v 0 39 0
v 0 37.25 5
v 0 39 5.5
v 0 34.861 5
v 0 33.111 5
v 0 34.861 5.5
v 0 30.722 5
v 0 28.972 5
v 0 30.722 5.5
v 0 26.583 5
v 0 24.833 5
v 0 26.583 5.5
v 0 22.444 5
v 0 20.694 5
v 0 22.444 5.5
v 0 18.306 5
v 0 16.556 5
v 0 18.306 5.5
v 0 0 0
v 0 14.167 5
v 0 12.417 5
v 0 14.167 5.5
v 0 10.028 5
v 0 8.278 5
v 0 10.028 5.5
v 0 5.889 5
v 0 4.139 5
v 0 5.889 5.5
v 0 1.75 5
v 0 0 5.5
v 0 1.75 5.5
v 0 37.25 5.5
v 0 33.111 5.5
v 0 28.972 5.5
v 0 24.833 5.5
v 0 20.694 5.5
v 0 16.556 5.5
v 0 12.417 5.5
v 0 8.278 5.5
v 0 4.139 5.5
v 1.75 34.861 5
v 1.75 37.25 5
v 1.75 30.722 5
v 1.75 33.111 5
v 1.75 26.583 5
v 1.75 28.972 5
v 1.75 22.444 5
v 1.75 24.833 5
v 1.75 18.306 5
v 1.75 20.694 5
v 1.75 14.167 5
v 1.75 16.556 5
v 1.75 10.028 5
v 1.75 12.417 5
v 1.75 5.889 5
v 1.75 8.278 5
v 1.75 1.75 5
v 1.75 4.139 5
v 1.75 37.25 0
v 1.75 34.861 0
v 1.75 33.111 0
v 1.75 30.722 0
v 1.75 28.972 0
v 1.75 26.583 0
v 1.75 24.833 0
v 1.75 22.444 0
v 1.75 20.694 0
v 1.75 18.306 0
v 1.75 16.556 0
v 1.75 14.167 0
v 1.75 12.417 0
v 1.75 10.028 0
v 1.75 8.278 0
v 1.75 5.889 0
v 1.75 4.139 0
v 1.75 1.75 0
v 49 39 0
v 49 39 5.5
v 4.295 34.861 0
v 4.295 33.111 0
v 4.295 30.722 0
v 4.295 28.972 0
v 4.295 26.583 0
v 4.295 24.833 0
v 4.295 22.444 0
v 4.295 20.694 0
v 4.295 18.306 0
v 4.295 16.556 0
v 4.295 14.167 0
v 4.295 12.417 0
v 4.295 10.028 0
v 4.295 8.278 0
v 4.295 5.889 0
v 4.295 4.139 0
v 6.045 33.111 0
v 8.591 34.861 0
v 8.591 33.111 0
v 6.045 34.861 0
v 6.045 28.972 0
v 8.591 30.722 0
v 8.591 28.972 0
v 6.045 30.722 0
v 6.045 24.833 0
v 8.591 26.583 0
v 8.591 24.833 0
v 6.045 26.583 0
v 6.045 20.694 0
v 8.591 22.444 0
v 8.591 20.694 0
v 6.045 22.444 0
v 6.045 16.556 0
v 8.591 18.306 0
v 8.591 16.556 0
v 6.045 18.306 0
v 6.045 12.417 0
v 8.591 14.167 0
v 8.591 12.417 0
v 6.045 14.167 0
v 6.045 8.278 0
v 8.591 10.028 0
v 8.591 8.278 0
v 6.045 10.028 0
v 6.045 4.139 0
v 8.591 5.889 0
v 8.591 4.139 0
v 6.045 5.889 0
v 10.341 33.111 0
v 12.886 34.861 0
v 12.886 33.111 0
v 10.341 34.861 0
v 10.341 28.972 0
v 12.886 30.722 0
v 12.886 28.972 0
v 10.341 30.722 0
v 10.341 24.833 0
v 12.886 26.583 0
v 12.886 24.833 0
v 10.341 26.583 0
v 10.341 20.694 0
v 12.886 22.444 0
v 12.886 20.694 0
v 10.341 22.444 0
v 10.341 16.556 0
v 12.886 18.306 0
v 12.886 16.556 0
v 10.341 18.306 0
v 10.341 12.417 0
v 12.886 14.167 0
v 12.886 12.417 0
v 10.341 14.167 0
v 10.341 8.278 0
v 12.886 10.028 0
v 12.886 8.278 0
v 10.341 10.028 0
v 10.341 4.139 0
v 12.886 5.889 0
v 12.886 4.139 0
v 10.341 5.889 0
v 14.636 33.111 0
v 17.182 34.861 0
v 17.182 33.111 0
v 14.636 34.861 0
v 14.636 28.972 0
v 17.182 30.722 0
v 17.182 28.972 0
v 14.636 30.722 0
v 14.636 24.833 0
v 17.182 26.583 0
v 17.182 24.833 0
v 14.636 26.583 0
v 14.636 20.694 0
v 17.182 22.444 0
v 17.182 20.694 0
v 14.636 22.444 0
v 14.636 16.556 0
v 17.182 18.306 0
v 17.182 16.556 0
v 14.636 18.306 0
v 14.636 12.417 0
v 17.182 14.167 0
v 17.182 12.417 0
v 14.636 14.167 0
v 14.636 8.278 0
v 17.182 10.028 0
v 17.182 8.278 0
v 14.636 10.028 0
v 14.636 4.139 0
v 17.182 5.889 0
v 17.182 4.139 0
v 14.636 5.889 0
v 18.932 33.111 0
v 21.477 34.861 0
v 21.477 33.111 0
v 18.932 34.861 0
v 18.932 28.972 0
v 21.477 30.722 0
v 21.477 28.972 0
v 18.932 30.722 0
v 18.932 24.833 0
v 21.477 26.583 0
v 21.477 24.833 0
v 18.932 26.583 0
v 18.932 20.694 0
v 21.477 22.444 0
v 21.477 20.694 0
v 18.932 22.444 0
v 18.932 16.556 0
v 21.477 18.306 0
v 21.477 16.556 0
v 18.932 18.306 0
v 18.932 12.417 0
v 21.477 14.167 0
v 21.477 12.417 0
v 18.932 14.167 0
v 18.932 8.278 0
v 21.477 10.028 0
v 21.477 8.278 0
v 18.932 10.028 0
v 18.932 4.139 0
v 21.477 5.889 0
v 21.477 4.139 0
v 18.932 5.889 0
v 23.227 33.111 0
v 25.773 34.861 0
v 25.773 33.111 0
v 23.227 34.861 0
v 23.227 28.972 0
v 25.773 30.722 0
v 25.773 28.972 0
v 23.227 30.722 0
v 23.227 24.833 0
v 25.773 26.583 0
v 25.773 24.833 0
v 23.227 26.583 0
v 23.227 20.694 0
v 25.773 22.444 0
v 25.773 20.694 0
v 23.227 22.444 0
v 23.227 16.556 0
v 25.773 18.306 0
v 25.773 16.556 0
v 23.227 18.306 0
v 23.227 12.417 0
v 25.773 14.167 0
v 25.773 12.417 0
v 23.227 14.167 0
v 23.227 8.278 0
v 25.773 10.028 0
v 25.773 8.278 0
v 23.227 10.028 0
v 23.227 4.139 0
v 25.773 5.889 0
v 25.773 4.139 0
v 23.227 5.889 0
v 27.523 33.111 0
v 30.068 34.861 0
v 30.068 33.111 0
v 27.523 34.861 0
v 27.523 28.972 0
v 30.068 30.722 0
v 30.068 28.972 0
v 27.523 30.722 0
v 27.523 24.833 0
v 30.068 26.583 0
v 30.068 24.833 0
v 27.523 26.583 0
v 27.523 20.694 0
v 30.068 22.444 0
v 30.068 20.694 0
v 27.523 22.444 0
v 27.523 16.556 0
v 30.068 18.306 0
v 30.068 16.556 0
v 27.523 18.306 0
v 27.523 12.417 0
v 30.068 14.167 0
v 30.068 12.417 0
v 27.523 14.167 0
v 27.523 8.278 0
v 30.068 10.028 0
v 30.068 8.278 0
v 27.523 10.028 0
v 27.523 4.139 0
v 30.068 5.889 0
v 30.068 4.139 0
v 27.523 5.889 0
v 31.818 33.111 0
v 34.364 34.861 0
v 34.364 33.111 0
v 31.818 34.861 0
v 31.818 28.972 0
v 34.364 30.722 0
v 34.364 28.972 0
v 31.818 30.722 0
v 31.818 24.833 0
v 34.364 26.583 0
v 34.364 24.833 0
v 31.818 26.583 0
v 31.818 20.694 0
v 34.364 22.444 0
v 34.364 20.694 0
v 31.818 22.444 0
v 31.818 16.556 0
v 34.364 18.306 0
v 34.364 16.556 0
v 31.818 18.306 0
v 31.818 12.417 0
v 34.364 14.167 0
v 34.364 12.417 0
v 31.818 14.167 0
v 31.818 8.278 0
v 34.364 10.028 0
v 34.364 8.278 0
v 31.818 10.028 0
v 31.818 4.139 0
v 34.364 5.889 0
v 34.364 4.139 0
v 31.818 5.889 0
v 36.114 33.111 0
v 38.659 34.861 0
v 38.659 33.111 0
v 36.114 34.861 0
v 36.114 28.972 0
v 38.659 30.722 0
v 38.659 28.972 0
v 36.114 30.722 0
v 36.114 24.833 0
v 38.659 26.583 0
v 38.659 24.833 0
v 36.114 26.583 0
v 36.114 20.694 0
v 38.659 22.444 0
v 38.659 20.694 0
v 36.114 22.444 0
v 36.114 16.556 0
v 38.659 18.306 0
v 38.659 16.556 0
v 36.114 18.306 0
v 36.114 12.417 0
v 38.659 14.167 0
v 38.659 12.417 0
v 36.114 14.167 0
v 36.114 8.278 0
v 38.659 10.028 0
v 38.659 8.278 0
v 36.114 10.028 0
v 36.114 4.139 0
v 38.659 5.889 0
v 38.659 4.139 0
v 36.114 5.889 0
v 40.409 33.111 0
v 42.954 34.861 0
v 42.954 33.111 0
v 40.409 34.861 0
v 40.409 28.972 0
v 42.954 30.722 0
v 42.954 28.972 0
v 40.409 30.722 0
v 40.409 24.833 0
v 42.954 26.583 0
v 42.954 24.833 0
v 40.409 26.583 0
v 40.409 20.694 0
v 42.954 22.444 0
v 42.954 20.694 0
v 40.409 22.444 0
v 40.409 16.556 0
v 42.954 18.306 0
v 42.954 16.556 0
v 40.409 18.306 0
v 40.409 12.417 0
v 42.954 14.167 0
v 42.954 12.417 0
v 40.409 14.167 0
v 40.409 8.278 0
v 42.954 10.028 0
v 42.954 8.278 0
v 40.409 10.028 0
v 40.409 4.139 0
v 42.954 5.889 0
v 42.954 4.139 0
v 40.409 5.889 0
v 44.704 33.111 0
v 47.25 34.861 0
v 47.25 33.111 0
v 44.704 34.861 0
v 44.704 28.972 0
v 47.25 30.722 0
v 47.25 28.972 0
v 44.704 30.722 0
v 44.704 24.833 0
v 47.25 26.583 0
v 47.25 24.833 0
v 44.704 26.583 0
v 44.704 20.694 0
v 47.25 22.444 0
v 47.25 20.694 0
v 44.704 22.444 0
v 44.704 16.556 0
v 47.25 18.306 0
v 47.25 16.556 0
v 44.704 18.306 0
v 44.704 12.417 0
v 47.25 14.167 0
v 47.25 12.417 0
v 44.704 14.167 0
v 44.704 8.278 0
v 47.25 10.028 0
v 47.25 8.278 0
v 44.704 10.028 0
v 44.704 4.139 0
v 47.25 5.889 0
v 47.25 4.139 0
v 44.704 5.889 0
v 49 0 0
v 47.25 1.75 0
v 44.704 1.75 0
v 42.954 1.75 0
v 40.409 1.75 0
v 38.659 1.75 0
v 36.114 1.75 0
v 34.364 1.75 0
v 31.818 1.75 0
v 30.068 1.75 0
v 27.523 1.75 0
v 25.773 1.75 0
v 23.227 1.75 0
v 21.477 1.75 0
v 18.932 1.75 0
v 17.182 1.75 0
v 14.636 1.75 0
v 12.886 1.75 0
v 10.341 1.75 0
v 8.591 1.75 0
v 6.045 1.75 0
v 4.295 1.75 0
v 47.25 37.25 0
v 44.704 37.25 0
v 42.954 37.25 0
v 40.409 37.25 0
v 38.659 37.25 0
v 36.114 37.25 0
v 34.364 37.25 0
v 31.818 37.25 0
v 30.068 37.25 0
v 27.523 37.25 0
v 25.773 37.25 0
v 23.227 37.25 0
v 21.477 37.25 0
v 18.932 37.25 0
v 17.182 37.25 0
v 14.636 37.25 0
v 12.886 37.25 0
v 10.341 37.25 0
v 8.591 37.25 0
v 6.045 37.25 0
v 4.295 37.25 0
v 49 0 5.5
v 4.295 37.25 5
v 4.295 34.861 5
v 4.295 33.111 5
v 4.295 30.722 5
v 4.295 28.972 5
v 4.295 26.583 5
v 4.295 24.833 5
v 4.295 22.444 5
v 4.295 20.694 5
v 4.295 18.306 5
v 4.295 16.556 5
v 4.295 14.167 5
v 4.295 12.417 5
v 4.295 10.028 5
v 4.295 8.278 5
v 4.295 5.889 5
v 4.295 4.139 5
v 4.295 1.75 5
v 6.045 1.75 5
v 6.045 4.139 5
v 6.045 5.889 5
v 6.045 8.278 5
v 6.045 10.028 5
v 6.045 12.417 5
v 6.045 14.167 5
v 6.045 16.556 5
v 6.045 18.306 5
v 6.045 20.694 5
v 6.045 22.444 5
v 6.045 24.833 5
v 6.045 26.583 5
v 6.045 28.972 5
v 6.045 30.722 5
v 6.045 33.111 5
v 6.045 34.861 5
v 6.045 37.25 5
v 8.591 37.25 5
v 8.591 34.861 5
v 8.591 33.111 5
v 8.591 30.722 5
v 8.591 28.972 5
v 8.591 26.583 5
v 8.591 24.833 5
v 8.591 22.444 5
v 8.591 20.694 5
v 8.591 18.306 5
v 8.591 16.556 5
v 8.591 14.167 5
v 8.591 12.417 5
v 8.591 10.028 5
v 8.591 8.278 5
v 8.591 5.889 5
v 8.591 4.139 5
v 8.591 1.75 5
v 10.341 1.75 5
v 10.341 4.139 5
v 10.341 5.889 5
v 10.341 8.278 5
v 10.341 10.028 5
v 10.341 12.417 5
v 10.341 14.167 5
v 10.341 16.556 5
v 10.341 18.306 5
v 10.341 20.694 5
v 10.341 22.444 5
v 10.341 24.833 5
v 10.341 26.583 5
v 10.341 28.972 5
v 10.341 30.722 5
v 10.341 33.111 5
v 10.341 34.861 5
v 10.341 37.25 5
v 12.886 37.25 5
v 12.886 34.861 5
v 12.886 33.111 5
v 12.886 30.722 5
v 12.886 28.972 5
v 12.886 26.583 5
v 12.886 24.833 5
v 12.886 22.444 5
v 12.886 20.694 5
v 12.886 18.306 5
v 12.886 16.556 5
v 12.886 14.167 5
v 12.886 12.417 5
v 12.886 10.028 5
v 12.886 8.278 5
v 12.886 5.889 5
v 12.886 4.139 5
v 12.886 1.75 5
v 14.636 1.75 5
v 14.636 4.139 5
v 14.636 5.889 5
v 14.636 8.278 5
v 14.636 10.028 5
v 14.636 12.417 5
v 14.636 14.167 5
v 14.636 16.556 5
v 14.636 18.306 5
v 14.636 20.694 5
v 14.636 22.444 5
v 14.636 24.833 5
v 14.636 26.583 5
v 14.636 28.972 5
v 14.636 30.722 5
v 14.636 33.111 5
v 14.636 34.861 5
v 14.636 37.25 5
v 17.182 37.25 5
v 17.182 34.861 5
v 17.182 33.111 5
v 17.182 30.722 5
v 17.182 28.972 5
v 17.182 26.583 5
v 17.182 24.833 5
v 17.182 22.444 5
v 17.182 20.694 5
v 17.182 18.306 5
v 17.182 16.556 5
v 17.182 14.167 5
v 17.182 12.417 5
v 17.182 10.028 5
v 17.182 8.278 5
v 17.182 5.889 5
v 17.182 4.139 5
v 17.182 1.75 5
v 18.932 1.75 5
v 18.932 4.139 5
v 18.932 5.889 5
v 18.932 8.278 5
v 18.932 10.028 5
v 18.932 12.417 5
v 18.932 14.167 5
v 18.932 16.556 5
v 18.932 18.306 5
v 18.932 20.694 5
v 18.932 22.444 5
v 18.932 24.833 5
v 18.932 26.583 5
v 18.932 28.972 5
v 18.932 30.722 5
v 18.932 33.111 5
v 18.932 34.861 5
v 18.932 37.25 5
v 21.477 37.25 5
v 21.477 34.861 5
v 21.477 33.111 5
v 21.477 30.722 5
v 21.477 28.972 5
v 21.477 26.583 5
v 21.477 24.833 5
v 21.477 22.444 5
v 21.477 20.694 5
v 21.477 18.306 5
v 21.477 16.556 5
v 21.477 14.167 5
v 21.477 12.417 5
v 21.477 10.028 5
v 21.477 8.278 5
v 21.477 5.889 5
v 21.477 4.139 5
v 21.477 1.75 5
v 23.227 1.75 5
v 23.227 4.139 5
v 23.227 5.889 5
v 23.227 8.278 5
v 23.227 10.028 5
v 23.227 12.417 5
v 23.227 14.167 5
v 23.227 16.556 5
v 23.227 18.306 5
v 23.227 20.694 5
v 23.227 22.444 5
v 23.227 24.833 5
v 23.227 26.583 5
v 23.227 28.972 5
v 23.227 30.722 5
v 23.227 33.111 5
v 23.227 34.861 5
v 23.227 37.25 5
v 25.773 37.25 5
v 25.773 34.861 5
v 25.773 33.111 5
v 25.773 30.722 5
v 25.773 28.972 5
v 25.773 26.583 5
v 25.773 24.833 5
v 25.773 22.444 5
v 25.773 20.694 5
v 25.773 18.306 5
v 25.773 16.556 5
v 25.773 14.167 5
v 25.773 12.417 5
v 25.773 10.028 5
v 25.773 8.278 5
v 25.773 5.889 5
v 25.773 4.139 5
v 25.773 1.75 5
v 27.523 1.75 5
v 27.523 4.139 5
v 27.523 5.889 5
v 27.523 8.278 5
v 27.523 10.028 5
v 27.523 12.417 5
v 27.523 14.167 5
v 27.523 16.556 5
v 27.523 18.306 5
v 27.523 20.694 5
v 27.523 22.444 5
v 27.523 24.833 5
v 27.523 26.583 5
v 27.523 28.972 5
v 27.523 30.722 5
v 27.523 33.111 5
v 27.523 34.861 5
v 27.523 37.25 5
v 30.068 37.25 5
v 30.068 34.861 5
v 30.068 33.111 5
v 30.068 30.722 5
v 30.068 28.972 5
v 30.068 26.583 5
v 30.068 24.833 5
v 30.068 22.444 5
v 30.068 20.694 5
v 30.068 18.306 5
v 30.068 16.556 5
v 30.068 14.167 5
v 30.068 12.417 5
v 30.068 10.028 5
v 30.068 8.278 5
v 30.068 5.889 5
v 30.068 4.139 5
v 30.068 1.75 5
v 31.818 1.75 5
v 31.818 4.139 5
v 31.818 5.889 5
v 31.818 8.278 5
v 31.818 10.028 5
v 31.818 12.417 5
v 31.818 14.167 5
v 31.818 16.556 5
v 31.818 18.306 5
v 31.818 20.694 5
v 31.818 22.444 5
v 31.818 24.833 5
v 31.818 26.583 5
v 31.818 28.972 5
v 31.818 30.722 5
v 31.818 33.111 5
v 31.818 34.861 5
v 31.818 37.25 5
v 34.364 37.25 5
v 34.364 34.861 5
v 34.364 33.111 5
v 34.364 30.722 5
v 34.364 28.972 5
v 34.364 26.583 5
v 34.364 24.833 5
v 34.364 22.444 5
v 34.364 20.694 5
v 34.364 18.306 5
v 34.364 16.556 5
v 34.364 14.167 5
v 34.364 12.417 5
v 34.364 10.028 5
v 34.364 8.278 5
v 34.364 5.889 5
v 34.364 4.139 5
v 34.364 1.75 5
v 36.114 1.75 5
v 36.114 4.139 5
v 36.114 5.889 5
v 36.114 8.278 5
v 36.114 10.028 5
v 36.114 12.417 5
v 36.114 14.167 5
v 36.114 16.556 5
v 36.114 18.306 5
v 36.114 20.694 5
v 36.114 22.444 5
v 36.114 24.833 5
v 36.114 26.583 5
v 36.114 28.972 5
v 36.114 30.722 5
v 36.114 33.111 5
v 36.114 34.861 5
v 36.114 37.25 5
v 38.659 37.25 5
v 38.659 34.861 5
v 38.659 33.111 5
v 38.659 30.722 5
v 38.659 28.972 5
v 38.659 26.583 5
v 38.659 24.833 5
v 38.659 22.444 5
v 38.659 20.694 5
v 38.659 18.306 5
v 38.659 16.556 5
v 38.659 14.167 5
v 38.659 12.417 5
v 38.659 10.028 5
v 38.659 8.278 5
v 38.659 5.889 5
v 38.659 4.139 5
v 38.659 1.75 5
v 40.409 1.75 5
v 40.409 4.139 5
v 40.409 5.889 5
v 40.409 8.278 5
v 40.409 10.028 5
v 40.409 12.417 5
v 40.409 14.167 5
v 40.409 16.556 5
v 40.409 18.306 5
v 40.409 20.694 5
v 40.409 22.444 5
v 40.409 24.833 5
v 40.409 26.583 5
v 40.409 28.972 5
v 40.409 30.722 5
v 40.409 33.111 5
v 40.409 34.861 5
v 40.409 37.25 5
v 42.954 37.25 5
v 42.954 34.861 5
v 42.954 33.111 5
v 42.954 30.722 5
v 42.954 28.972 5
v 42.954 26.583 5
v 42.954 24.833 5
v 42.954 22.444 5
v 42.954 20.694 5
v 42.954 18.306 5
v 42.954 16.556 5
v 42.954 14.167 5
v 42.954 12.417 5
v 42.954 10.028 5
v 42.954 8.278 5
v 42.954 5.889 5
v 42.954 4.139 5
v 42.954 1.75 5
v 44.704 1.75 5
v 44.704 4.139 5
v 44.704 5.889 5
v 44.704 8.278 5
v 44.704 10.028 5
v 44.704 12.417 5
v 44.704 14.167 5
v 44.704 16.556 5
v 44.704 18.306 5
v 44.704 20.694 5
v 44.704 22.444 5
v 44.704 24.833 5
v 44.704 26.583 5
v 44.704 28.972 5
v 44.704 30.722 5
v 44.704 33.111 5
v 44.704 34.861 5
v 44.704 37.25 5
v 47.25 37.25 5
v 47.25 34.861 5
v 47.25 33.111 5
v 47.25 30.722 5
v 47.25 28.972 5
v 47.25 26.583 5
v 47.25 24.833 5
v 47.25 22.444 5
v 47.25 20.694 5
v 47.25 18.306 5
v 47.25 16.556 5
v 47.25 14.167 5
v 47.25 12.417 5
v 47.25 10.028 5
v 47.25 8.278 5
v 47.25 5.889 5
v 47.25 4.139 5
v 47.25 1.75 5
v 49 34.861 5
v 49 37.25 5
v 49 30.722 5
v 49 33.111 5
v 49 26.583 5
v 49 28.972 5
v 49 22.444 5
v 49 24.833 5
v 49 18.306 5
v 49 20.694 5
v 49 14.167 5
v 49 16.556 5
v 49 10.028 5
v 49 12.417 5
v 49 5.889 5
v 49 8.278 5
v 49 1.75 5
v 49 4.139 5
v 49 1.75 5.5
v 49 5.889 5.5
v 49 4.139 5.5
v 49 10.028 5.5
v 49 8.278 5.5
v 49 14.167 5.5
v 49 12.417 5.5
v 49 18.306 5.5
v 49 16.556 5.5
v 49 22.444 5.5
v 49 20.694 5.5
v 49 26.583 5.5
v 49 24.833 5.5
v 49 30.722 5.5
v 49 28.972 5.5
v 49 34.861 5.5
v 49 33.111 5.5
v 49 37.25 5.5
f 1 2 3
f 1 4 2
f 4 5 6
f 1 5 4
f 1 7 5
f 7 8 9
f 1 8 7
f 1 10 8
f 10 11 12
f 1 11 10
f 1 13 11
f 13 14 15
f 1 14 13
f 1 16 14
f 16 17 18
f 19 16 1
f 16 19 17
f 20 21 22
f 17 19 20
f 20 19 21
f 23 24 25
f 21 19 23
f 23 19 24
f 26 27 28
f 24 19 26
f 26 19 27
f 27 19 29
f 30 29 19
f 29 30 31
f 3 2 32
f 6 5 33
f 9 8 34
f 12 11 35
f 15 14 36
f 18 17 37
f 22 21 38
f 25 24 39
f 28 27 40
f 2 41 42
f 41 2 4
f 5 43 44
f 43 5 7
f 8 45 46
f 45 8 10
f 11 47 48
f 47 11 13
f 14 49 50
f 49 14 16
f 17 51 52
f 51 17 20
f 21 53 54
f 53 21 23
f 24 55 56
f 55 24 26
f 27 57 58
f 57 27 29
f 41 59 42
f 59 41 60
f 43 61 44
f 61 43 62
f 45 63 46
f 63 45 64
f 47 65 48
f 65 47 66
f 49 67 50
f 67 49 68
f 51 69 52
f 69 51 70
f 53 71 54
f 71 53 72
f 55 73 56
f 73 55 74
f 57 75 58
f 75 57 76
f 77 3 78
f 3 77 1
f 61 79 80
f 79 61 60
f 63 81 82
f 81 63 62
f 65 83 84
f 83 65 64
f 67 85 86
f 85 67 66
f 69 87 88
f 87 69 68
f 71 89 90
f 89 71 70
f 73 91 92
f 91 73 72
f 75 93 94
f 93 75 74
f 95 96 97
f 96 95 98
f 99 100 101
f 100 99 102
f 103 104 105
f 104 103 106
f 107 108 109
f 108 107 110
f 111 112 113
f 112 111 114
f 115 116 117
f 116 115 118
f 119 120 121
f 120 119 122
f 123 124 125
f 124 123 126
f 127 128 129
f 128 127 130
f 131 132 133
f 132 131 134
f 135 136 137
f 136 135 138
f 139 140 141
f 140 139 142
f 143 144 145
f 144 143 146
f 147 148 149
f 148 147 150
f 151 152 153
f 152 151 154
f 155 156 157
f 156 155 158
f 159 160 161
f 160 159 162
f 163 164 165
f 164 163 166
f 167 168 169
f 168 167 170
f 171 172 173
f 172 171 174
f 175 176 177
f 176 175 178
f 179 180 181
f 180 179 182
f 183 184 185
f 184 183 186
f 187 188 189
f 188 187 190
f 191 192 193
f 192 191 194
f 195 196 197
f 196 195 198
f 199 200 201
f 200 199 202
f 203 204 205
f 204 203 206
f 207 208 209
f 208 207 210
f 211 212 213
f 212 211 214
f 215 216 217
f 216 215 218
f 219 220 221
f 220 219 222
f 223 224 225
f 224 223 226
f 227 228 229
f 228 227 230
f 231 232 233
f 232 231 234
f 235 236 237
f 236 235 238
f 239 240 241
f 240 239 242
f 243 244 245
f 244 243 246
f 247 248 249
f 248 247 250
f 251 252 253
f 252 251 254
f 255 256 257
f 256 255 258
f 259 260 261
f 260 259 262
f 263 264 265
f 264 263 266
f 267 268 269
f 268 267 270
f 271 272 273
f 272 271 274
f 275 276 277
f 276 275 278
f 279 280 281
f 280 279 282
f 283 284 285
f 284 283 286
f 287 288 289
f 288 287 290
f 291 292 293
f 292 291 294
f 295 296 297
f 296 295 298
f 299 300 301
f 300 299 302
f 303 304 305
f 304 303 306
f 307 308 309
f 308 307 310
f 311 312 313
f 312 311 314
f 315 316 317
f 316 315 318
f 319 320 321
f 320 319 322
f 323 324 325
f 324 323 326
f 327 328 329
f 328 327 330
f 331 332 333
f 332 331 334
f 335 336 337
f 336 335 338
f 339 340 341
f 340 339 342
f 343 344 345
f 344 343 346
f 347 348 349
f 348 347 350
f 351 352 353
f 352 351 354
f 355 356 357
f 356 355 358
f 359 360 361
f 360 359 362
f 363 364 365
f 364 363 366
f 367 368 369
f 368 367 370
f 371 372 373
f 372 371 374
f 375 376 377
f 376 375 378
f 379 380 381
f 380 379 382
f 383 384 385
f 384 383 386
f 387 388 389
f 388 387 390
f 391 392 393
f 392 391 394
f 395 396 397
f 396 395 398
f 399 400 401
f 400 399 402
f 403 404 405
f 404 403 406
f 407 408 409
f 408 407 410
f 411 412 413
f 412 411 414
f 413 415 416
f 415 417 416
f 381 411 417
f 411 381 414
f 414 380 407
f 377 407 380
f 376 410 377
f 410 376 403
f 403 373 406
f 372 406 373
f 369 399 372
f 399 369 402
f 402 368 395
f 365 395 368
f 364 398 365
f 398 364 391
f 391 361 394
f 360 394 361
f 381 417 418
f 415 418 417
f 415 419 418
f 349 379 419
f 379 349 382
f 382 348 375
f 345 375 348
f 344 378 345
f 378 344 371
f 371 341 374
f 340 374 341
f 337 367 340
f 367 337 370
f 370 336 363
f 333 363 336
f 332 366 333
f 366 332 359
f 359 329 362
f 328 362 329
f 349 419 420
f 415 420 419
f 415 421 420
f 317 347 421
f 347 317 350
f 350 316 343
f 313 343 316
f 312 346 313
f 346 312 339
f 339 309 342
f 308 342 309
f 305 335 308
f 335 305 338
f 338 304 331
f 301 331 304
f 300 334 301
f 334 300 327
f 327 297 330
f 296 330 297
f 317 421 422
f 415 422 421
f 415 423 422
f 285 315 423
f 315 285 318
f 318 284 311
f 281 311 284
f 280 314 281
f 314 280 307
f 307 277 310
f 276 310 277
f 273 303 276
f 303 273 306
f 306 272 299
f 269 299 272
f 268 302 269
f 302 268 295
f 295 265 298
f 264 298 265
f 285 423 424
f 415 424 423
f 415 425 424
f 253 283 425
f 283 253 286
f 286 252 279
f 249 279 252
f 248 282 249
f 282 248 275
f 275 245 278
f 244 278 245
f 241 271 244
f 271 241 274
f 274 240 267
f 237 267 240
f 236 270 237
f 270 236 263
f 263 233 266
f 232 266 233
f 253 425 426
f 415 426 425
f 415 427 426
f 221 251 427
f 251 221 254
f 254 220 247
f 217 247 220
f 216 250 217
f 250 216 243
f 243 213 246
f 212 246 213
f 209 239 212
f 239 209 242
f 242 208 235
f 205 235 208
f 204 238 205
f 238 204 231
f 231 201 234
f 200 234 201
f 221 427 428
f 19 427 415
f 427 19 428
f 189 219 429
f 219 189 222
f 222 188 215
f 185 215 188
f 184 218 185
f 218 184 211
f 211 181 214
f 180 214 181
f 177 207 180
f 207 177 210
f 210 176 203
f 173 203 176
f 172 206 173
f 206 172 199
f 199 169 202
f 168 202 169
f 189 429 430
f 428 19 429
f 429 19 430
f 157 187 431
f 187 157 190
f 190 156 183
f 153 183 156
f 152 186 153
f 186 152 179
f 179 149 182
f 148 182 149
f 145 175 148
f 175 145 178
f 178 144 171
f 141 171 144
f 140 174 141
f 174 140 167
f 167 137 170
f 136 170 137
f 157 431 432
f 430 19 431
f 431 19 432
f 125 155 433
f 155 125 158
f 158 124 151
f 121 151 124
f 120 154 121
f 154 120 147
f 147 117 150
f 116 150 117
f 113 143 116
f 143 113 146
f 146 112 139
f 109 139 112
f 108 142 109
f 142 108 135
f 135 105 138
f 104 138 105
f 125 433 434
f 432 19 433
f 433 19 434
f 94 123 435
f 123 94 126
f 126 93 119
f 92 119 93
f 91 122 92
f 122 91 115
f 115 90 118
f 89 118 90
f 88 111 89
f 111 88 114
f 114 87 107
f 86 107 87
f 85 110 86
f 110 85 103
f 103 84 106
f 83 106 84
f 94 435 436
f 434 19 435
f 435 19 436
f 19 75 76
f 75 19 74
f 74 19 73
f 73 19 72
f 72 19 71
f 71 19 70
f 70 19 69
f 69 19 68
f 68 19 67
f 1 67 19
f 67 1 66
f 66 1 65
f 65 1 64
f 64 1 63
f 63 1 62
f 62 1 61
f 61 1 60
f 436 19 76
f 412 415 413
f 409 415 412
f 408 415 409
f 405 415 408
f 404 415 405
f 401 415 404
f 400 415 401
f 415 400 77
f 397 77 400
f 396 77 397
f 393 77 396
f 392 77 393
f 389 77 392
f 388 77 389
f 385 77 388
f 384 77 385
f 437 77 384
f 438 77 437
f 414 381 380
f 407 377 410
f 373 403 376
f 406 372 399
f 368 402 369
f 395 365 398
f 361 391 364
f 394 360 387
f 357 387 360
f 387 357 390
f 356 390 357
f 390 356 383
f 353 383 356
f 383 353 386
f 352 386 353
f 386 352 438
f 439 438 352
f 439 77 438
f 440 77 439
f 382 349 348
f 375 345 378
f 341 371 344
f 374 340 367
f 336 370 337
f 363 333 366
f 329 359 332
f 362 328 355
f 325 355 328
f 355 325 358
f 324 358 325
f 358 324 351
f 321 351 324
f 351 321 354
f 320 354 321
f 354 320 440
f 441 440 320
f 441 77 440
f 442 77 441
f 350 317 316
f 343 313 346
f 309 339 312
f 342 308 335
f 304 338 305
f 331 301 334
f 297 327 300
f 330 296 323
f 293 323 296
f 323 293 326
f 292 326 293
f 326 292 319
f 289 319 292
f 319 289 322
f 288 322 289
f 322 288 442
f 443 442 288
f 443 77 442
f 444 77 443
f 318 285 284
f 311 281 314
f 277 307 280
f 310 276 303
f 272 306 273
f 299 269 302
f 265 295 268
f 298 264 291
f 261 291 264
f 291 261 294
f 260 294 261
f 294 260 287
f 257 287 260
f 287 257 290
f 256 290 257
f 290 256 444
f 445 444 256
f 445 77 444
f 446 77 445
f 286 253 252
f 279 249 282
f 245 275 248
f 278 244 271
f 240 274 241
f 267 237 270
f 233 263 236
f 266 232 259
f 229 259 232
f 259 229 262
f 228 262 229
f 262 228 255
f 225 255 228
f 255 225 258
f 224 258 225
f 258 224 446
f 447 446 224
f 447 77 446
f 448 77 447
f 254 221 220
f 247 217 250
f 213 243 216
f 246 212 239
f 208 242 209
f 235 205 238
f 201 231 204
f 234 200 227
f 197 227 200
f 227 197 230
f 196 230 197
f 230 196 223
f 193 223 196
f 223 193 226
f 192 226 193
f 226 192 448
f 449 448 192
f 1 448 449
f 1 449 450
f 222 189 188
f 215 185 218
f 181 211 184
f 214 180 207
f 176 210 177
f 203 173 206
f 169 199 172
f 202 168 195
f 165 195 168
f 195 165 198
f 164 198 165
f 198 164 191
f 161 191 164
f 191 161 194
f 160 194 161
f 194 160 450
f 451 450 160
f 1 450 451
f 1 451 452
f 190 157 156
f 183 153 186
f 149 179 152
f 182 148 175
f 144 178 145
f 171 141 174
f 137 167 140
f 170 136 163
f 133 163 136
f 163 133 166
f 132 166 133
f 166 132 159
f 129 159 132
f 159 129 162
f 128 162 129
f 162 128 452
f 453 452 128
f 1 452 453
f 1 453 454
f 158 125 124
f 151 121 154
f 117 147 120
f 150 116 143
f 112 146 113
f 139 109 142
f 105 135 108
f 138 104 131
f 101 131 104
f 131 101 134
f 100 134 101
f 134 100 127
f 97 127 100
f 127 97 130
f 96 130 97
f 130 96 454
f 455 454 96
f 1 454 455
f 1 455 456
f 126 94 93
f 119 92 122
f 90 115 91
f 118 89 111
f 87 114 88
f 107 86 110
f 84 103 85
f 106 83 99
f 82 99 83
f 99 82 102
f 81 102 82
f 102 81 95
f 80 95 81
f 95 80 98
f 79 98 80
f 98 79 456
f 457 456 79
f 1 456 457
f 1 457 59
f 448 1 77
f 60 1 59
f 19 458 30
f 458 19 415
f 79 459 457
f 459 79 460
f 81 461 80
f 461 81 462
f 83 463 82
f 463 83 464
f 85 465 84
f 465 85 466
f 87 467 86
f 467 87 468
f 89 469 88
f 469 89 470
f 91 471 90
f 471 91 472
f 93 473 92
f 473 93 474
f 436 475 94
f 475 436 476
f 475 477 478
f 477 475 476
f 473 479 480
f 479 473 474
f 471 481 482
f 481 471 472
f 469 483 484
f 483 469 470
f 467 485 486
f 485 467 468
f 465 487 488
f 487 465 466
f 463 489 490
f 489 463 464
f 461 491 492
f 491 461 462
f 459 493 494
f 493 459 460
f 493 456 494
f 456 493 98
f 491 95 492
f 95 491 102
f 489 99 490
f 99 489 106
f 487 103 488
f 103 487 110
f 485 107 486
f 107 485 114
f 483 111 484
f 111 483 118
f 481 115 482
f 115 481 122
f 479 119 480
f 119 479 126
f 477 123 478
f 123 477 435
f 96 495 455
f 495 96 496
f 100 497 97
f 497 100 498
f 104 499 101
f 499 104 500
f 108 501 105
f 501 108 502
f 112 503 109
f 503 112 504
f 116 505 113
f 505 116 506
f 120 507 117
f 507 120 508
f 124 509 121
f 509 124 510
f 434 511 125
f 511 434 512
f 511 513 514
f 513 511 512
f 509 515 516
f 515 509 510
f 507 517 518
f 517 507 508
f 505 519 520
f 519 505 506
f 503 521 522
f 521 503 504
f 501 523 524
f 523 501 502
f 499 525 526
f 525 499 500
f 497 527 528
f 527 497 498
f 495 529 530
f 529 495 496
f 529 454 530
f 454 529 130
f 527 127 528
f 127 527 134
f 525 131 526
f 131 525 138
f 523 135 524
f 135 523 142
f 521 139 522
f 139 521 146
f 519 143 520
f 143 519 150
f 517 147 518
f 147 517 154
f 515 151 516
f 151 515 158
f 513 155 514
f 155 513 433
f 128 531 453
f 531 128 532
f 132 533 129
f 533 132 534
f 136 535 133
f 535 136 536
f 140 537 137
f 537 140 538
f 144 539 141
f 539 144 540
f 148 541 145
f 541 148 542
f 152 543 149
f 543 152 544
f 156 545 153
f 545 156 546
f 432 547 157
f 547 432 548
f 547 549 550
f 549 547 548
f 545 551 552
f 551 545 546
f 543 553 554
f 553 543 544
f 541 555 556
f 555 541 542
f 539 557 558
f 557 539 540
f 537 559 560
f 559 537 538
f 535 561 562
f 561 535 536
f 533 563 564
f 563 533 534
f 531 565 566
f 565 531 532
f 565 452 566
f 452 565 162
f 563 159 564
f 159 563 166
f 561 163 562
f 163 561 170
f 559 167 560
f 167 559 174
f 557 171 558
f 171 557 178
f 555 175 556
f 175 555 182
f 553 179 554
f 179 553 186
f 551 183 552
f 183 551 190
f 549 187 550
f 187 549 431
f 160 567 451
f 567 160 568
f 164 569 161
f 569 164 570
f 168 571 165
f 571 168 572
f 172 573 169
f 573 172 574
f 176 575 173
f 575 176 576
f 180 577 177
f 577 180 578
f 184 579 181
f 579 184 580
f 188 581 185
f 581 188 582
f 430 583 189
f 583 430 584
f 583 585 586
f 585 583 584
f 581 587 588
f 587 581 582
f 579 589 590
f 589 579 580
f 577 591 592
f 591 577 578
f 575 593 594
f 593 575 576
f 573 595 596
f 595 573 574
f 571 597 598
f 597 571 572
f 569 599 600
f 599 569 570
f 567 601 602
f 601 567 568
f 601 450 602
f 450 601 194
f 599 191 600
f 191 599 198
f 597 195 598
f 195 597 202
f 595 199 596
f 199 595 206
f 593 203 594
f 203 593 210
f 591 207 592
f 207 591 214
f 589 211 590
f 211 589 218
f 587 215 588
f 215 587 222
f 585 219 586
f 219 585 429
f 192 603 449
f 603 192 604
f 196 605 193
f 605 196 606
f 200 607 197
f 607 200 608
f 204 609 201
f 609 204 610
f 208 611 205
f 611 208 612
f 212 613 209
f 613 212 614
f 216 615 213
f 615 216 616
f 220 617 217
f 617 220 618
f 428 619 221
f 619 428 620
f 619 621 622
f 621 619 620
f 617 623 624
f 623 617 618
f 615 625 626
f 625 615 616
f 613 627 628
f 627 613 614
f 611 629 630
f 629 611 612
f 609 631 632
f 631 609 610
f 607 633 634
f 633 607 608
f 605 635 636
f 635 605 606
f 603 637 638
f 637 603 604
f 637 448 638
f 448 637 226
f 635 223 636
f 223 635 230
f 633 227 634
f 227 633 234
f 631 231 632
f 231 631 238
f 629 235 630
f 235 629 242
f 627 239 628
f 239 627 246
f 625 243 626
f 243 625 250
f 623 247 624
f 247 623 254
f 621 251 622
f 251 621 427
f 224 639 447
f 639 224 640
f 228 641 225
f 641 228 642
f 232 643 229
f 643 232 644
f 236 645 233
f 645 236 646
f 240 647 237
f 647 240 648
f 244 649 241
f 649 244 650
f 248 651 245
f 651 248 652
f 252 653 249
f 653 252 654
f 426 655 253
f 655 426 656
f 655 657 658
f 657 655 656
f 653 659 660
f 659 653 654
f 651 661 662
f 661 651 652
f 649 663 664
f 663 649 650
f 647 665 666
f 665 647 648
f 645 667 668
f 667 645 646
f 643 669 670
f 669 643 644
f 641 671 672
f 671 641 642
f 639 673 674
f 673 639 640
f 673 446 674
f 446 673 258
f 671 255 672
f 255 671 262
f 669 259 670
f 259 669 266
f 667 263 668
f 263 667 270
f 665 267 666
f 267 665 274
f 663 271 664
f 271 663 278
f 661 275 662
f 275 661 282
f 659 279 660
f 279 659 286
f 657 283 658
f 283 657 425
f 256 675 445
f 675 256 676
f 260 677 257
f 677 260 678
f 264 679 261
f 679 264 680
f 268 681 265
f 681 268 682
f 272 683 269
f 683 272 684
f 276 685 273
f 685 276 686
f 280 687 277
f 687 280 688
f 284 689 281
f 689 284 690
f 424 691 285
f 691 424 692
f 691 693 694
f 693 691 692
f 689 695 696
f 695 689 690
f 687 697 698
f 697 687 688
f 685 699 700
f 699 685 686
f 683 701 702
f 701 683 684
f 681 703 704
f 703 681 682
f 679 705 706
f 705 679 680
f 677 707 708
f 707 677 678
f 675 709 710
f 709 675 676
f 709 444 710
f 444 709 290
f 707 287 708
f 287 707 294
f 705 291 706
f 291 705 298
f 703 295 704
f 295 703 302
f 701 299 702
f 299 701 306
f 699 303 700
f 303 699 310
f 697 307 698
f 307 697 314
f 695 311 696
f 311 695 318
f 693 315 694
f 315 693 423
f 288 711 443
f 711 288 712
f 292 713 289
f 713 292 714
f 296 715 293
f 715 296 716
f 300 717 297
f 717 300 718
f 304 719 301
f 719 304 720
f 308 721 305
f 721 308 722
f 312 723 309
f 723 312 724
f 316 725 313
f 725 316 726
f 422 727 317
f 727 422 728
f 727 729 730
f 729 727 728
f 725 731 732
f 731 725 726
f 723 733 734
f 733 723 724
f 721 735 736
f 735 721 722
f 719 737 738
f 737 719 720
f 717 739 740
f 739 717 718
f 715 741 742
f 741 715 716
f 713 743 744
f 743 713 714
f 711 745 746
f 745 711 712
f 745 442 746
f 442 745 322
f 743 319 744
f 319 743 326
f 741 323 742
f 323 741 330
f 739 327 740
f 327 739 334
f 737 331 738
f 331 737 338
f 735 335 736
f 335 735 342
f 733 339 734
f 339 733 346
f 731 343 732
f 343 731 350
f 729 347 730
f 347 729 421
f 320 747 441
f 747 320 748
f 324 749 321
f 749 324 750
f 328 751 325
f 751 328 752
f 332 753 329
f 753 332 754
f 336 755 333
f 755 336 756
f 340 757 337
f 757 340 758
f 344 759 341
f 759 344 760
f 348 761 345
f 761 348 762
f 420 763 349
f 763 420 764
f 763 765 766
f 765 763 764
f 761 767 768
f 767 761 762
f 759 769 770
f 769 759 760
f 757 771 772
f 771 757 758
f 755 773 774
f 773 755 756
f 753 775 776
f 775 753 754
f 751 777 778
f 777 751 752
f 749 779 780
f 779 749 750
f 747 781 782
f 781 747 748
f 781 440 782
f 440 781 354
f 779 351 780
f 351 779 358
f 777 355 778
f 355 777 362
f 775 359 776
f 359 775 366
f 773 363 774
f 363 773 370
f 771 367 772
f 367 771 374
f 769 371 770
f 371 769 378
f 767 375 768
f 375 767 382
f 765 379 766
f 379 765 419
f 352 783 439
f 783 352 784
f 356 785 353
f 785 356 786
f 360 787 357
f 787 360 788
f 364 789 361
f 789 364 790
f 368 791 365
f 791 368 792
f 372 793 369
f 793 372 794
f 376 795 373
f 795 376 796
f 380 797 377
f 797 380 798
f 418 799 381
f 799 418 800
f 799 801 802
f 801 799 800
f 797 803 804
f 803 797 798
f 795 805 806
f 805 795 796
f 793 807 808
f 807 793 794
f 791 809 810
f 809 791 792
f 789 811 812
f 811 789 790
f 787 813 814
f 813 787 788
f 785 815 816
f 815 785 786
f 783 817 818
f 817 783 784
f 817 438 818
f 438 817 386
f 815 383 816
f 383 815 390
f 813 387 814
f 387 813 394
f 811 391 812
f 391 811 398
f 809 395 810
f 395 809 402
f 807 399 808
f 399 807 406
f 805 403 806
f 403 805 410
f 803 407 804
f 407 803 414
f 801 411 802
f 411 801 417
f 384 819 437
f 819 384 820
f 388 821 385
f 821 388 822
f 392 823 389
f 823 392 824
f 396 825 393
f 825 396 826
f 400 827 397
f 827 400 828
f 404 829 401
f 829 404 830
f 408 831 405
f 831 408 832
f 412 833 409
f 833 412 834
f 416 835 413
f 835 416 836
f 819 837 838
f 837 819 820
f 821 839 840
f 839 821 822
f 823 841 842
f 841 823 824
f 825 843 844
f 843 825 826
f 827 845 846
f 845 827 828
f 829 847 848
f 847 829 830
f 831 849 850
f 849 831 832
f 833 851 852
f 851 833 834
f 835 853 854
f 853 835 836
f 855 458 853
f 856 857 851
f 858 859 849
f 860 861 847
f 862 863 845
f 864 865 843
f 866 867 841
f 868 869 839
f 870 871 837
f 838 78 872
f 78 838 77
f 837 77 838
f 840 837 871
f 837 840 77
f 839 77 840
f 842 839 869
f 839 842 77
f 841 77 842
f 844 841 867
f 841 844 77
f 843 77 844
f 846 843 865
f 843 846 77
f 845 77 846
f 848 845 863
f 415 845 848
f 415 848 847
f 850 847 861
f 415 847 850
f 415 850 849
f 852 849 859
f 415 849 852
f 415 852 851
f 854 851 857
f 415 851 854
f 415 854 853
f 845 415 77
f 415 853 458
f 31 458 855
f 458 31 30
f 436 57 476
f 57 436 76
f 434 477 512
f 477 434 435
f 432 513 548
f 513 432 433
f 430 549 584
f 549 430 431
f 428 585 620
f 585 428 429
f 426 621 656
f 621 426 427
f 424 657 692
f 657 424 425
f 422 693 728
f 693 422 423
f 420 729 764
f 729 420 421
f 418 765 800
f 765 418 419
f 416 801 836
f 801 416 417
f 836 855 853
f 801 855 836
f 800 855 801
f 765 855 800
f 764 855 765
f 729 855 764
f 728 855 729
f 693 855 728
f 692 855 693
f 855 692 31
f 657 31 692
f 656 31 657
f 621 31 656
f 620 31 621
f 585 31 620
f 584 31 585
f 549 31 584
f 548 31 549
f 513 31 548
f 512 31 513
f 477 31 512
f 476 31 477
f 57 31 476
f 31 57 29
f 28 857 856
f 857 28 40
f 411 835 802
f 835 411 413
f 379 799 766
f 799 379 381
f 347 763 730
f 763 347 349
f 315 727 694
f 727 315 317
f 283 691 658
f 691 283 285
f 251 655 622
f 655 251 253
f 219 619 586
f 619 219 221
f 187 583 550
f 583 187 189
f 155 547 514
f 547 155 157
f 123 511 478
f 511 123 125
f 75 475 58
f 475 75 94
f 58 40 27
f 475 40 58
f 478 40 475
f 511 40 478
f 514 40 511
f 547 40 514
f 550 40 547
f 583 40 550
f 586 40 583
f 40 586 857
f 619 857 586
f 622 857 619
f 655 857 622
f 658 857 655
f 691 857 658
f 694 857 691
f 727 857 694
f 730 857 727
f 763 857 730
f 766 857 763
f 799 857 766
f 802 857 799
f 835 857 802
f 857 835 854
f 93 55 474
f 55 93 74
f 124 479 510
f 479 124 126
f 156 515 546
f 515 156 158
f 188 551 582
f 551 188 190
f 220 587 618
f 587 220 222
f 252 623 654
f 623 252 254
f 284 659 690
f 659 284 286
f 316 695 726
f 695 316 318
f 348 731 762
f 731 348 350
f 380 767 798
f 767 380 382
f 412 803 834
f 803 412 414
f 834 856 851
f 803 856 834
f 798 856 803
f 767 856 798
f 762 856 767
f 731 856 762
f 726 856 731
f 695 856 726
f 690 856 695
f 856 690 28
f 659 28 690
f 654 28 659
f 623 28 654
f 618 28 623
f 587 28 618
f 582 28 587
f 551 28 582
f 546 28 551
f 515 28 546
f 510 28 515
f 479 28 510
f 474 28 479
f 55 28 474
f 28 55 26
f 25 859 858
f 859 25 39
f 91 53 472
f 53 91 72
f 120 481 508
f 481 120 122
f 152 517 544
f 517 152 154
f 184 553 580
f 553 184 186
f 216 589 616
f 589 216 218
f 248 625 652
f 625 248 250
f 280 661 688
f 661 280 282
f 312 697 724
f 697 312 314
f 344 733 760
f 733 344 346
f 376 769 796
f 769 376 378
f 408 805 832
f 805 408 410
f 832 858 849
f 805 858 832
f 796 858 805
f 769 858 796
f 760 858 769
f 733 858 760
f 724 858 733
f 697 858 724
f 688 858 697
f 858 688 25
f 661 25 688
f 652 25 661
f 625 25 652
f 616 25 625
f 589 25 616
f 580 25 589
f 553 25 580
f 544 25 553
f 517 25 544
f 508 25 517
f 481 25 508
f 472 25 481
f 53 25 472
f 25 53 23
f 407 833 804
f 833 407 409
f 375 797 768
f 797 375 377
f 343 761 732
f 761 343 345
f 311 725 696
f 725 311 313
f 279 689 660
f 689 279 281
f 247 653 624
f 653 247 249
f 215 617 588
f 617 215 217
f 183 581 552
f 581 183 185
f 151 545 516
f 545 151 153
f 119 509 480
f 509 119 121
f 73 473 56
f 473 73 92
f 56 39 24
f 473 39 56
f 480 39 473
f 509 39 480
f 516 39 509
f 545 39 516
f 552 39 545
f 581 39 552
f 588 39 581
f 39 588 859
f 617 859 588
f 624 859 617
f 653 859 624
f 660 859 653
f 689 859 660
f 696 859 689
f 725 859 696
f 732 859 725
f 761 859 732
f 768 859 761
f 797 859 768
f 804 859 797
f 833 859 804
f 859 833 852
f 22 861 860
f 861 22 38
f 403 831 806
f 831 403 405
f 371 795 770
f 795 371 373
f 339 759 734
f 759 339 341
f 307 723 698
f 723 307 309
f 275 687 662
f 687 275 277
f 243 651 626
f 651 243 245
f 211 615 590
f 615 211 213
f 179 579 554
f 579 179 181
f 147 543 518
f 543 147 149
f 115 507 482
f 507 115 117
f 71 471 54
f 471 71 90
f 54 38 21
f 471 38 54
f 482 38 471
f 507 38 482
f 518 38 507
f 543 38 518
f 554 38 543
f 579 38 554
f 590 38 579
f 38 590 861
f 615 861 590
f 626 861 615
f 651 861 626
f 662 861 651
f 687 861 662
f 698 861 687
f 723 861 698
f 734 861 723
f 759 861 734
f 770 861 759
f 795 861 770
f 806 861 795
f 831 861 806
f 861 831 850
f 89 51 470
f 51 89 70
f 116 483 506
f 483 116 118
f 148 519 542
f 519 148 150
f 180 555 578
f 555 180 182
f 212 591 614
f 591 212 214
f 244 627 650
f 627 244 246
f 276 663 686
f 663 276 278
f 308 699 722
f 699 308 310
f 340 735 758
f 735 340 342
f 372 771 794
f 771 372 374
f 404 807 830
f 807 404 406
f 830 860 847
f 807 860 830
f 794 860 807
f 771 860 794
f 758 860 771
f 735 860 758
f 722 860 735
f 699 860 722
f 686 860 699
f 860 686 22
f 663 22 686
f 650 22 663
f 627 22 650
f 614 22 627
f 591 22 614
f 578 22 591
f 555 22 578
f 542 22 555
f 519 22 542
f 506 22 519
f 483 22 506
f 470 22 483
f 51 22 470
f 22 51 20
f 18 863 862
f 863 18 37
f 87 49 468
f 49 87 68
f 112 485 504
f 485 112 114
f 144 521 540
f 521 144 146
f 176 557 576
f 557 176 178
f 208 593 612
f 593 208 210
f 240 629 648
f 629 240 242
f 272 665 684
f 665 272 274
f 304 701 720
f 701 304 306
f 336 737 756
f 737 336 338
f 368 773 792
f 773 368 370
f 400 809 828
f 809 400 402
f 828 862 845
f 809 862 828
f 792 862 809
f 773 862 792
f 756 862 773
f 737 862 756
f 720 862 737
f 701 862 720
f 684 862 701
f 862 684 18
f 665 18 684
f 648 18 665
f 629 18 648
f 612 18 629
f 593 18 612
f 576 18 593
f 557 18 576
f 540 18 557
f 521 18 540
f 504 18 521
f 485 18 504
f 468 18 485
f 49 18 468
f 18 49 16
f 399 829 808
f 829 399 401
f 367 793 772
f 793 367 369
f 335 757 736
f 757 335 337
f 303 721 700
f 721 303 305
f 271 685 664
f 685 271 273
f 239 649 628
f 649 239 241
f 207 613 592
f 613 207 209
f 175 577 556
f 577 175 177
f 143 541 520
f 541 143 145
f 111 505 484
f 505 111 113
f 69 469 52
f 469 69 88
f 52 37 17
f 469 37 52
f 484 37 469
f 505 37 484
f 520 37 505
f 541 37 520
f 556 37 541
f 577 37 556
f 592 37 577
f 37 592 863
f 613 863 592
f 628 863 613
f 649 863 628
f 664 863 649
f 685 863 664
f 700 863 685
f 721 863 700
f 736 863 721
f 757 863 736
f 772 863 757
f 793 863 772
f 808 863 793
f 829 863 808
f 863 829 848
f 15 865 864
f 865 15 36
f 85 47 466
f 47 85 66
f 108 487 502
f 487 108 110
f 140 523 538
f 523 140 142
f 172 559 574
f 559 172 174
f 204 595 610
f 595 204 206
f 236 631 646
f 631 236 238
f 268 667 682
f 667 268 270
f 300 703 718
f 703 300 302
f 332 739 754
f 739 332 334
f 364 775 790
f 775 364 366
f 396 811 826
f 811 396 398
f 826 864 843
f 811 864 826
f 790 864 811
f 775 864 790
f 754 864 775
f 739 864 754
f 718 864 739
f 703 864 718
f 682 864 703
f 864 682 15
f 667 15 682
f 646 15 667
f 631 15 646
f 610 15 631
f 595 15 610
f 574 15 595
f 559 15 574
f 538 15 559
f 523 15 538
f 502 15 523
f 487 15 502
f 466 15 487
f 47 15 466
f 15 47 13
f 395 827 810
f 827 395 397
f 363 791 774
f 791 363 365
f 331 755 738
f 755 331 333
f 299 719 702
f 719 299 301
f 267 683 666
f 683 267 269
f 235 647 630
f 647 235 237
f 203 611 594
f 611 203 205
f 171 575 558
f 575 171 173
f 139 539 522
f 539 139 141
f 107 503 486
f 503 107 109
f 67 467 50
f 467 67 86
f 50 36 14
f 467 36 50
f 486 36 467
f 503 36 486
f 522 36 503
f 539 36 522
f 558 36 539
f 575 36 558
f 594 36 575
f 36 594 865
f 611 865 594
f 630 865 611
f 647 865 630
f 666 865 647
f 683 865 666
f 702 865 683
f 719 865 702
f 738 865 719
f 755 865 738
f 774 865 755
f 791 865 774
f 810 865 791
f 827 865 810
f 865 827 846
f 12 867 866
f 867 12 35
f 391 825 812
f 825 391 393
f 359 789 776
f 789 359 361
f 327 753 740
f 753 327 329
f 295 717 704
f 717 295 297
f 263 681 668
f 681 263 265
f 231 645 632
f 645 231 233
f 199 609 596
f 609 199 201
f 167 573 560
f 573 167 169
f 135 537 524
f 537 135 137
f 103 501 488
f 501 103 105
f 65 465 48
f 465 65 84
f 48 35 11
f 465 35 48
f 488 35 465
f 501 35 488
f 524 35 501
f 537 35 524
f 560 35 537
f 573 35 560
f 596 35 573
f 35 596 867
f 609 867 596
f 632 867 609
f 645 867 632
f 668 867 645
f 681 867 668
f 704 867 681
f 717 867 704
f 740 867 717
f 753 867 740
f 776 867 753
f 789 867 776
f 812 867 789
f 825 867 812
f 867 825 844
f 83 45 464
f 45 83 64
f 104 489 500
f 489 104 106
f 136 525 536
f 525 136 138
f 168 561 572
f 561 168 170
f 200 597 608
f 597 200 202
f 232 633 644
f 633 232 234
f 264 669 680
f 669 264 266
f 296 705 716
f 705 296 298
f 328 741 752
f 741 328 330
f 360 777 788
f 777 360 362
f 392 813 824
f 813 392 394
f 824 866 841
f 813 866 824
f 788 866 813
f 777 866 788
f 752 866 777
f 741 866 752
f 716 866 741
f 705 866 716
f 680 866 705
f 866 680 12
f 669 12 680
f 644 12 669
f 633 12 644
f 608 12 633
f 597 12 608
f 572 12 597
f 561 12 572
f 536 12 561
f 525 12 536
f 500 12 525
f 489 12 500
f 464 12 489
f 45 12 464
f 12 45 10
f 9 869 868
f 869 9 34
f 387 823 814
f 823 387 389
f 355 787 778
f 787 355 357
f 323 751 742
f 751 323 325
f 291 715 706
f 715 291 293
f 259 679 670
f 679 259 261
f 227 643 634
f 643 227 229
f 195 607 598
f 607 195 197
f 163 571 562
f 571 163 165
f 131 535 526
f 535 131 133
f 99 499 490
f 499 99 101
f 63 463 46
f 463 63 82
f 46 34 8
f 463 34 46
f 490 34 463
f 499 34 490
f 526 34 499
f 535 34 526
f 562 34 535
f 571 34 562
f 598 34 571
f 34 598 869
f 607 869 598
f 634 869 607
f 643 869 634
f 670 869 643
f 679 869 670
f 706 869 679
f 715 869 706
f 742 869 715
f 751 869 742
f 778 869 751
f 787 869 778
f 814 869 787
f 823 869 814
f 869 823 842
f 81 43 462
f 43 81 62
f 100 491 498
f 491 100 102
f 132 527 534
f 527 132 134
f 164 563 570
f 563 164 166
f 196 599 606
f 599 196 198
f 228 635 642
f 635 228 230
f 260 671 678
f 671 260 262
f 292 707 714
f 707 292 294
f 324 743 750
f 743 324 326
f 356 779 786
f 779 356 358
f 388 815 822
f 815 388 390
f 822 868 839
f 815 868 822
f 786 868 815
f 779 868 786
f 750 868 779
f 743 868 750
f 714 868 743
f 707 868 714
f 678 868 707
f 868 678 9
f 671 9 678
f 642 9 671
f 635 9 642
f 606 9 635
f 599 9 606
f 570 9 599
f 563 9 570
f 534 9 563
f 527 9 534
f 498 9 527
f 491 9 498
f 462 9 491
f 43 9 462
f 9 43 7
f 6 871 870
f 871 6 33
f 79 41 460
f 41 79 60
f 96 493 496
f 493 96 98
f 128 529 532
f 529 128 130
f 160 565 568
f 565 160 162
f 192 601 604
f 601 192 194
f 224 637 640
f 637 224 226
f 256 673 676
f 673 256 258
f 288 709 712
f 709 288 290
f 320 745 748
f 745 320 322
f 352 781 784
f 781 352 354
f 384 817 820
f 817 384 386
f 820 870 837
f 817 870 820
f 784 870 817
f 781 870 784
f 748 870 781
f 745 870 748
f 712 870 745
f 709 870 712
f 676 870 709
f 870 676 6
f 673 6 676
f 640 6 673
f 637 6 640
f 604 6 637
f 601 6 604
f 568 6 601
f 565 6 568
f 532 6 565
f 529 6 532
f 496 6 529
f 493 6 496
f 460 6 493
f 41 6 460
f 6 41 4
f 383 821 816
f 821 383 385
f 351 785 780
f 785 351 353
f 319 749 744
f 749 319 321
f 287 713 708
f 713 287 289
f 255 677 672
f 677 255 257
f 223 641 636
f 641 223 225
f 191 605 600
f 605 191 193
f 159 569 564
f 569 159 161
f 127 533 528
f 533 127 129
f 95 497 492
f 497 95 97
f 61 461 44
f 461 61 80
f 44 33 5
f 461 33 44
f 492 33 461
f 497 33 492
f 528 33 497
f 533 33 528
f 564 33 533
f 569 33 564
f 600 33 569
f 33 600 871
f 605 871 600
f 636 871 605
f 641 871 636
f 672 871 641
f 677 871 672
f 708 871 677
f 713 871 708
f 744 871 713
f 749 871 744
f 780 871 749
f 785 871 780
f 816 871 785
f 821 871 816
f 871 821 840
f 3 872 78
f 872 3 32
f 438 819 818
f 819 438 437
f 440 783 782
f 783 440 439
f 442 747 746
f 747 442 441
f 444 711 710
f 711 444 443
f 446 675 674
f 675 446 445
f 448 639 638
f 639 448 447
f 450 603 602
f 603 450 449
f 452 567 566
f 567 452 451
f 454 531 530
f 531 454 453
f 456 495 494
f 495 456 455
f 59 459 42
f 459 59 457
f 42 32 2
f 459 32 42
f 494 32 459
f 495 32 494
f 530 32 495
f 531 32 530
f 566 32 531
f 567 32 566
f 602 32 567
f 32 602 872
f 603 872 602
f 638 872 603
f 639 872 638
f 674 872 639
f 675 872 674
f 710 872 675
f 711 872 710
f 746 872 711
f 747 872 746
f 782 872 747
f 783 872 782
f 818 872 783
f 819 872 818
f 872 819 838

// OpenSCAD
// Density: Draft
// Fill: 100%

LENGTH = 49;
WIDTH = 39;
HEIGHT1 = 5;
HEIGHT2 = 5.5;

PITCH1 = 4.5;
PITCH2 = 4.5;
THICKNESS = 1.75;

n1 = round(LENGTH/PITCH1);
n2 = round(WIDTH/PITCH2);
echo(n1); echo(n2);

p1 = (LENGTH-THICKNESS) / n1;
p2 = (WIDTH-THICKNESS) / n2;

for (x = [0:p1:LENGTH])
    translate([x, 0, 0])
    cube([THICKNESS, WIDTH, HEIGHT1]);
    
for (y = [0:p2:WIDTH])
    translate([0, y, 0])
    cube([LENGTH, THICKNESS, HEIGHT2]);
